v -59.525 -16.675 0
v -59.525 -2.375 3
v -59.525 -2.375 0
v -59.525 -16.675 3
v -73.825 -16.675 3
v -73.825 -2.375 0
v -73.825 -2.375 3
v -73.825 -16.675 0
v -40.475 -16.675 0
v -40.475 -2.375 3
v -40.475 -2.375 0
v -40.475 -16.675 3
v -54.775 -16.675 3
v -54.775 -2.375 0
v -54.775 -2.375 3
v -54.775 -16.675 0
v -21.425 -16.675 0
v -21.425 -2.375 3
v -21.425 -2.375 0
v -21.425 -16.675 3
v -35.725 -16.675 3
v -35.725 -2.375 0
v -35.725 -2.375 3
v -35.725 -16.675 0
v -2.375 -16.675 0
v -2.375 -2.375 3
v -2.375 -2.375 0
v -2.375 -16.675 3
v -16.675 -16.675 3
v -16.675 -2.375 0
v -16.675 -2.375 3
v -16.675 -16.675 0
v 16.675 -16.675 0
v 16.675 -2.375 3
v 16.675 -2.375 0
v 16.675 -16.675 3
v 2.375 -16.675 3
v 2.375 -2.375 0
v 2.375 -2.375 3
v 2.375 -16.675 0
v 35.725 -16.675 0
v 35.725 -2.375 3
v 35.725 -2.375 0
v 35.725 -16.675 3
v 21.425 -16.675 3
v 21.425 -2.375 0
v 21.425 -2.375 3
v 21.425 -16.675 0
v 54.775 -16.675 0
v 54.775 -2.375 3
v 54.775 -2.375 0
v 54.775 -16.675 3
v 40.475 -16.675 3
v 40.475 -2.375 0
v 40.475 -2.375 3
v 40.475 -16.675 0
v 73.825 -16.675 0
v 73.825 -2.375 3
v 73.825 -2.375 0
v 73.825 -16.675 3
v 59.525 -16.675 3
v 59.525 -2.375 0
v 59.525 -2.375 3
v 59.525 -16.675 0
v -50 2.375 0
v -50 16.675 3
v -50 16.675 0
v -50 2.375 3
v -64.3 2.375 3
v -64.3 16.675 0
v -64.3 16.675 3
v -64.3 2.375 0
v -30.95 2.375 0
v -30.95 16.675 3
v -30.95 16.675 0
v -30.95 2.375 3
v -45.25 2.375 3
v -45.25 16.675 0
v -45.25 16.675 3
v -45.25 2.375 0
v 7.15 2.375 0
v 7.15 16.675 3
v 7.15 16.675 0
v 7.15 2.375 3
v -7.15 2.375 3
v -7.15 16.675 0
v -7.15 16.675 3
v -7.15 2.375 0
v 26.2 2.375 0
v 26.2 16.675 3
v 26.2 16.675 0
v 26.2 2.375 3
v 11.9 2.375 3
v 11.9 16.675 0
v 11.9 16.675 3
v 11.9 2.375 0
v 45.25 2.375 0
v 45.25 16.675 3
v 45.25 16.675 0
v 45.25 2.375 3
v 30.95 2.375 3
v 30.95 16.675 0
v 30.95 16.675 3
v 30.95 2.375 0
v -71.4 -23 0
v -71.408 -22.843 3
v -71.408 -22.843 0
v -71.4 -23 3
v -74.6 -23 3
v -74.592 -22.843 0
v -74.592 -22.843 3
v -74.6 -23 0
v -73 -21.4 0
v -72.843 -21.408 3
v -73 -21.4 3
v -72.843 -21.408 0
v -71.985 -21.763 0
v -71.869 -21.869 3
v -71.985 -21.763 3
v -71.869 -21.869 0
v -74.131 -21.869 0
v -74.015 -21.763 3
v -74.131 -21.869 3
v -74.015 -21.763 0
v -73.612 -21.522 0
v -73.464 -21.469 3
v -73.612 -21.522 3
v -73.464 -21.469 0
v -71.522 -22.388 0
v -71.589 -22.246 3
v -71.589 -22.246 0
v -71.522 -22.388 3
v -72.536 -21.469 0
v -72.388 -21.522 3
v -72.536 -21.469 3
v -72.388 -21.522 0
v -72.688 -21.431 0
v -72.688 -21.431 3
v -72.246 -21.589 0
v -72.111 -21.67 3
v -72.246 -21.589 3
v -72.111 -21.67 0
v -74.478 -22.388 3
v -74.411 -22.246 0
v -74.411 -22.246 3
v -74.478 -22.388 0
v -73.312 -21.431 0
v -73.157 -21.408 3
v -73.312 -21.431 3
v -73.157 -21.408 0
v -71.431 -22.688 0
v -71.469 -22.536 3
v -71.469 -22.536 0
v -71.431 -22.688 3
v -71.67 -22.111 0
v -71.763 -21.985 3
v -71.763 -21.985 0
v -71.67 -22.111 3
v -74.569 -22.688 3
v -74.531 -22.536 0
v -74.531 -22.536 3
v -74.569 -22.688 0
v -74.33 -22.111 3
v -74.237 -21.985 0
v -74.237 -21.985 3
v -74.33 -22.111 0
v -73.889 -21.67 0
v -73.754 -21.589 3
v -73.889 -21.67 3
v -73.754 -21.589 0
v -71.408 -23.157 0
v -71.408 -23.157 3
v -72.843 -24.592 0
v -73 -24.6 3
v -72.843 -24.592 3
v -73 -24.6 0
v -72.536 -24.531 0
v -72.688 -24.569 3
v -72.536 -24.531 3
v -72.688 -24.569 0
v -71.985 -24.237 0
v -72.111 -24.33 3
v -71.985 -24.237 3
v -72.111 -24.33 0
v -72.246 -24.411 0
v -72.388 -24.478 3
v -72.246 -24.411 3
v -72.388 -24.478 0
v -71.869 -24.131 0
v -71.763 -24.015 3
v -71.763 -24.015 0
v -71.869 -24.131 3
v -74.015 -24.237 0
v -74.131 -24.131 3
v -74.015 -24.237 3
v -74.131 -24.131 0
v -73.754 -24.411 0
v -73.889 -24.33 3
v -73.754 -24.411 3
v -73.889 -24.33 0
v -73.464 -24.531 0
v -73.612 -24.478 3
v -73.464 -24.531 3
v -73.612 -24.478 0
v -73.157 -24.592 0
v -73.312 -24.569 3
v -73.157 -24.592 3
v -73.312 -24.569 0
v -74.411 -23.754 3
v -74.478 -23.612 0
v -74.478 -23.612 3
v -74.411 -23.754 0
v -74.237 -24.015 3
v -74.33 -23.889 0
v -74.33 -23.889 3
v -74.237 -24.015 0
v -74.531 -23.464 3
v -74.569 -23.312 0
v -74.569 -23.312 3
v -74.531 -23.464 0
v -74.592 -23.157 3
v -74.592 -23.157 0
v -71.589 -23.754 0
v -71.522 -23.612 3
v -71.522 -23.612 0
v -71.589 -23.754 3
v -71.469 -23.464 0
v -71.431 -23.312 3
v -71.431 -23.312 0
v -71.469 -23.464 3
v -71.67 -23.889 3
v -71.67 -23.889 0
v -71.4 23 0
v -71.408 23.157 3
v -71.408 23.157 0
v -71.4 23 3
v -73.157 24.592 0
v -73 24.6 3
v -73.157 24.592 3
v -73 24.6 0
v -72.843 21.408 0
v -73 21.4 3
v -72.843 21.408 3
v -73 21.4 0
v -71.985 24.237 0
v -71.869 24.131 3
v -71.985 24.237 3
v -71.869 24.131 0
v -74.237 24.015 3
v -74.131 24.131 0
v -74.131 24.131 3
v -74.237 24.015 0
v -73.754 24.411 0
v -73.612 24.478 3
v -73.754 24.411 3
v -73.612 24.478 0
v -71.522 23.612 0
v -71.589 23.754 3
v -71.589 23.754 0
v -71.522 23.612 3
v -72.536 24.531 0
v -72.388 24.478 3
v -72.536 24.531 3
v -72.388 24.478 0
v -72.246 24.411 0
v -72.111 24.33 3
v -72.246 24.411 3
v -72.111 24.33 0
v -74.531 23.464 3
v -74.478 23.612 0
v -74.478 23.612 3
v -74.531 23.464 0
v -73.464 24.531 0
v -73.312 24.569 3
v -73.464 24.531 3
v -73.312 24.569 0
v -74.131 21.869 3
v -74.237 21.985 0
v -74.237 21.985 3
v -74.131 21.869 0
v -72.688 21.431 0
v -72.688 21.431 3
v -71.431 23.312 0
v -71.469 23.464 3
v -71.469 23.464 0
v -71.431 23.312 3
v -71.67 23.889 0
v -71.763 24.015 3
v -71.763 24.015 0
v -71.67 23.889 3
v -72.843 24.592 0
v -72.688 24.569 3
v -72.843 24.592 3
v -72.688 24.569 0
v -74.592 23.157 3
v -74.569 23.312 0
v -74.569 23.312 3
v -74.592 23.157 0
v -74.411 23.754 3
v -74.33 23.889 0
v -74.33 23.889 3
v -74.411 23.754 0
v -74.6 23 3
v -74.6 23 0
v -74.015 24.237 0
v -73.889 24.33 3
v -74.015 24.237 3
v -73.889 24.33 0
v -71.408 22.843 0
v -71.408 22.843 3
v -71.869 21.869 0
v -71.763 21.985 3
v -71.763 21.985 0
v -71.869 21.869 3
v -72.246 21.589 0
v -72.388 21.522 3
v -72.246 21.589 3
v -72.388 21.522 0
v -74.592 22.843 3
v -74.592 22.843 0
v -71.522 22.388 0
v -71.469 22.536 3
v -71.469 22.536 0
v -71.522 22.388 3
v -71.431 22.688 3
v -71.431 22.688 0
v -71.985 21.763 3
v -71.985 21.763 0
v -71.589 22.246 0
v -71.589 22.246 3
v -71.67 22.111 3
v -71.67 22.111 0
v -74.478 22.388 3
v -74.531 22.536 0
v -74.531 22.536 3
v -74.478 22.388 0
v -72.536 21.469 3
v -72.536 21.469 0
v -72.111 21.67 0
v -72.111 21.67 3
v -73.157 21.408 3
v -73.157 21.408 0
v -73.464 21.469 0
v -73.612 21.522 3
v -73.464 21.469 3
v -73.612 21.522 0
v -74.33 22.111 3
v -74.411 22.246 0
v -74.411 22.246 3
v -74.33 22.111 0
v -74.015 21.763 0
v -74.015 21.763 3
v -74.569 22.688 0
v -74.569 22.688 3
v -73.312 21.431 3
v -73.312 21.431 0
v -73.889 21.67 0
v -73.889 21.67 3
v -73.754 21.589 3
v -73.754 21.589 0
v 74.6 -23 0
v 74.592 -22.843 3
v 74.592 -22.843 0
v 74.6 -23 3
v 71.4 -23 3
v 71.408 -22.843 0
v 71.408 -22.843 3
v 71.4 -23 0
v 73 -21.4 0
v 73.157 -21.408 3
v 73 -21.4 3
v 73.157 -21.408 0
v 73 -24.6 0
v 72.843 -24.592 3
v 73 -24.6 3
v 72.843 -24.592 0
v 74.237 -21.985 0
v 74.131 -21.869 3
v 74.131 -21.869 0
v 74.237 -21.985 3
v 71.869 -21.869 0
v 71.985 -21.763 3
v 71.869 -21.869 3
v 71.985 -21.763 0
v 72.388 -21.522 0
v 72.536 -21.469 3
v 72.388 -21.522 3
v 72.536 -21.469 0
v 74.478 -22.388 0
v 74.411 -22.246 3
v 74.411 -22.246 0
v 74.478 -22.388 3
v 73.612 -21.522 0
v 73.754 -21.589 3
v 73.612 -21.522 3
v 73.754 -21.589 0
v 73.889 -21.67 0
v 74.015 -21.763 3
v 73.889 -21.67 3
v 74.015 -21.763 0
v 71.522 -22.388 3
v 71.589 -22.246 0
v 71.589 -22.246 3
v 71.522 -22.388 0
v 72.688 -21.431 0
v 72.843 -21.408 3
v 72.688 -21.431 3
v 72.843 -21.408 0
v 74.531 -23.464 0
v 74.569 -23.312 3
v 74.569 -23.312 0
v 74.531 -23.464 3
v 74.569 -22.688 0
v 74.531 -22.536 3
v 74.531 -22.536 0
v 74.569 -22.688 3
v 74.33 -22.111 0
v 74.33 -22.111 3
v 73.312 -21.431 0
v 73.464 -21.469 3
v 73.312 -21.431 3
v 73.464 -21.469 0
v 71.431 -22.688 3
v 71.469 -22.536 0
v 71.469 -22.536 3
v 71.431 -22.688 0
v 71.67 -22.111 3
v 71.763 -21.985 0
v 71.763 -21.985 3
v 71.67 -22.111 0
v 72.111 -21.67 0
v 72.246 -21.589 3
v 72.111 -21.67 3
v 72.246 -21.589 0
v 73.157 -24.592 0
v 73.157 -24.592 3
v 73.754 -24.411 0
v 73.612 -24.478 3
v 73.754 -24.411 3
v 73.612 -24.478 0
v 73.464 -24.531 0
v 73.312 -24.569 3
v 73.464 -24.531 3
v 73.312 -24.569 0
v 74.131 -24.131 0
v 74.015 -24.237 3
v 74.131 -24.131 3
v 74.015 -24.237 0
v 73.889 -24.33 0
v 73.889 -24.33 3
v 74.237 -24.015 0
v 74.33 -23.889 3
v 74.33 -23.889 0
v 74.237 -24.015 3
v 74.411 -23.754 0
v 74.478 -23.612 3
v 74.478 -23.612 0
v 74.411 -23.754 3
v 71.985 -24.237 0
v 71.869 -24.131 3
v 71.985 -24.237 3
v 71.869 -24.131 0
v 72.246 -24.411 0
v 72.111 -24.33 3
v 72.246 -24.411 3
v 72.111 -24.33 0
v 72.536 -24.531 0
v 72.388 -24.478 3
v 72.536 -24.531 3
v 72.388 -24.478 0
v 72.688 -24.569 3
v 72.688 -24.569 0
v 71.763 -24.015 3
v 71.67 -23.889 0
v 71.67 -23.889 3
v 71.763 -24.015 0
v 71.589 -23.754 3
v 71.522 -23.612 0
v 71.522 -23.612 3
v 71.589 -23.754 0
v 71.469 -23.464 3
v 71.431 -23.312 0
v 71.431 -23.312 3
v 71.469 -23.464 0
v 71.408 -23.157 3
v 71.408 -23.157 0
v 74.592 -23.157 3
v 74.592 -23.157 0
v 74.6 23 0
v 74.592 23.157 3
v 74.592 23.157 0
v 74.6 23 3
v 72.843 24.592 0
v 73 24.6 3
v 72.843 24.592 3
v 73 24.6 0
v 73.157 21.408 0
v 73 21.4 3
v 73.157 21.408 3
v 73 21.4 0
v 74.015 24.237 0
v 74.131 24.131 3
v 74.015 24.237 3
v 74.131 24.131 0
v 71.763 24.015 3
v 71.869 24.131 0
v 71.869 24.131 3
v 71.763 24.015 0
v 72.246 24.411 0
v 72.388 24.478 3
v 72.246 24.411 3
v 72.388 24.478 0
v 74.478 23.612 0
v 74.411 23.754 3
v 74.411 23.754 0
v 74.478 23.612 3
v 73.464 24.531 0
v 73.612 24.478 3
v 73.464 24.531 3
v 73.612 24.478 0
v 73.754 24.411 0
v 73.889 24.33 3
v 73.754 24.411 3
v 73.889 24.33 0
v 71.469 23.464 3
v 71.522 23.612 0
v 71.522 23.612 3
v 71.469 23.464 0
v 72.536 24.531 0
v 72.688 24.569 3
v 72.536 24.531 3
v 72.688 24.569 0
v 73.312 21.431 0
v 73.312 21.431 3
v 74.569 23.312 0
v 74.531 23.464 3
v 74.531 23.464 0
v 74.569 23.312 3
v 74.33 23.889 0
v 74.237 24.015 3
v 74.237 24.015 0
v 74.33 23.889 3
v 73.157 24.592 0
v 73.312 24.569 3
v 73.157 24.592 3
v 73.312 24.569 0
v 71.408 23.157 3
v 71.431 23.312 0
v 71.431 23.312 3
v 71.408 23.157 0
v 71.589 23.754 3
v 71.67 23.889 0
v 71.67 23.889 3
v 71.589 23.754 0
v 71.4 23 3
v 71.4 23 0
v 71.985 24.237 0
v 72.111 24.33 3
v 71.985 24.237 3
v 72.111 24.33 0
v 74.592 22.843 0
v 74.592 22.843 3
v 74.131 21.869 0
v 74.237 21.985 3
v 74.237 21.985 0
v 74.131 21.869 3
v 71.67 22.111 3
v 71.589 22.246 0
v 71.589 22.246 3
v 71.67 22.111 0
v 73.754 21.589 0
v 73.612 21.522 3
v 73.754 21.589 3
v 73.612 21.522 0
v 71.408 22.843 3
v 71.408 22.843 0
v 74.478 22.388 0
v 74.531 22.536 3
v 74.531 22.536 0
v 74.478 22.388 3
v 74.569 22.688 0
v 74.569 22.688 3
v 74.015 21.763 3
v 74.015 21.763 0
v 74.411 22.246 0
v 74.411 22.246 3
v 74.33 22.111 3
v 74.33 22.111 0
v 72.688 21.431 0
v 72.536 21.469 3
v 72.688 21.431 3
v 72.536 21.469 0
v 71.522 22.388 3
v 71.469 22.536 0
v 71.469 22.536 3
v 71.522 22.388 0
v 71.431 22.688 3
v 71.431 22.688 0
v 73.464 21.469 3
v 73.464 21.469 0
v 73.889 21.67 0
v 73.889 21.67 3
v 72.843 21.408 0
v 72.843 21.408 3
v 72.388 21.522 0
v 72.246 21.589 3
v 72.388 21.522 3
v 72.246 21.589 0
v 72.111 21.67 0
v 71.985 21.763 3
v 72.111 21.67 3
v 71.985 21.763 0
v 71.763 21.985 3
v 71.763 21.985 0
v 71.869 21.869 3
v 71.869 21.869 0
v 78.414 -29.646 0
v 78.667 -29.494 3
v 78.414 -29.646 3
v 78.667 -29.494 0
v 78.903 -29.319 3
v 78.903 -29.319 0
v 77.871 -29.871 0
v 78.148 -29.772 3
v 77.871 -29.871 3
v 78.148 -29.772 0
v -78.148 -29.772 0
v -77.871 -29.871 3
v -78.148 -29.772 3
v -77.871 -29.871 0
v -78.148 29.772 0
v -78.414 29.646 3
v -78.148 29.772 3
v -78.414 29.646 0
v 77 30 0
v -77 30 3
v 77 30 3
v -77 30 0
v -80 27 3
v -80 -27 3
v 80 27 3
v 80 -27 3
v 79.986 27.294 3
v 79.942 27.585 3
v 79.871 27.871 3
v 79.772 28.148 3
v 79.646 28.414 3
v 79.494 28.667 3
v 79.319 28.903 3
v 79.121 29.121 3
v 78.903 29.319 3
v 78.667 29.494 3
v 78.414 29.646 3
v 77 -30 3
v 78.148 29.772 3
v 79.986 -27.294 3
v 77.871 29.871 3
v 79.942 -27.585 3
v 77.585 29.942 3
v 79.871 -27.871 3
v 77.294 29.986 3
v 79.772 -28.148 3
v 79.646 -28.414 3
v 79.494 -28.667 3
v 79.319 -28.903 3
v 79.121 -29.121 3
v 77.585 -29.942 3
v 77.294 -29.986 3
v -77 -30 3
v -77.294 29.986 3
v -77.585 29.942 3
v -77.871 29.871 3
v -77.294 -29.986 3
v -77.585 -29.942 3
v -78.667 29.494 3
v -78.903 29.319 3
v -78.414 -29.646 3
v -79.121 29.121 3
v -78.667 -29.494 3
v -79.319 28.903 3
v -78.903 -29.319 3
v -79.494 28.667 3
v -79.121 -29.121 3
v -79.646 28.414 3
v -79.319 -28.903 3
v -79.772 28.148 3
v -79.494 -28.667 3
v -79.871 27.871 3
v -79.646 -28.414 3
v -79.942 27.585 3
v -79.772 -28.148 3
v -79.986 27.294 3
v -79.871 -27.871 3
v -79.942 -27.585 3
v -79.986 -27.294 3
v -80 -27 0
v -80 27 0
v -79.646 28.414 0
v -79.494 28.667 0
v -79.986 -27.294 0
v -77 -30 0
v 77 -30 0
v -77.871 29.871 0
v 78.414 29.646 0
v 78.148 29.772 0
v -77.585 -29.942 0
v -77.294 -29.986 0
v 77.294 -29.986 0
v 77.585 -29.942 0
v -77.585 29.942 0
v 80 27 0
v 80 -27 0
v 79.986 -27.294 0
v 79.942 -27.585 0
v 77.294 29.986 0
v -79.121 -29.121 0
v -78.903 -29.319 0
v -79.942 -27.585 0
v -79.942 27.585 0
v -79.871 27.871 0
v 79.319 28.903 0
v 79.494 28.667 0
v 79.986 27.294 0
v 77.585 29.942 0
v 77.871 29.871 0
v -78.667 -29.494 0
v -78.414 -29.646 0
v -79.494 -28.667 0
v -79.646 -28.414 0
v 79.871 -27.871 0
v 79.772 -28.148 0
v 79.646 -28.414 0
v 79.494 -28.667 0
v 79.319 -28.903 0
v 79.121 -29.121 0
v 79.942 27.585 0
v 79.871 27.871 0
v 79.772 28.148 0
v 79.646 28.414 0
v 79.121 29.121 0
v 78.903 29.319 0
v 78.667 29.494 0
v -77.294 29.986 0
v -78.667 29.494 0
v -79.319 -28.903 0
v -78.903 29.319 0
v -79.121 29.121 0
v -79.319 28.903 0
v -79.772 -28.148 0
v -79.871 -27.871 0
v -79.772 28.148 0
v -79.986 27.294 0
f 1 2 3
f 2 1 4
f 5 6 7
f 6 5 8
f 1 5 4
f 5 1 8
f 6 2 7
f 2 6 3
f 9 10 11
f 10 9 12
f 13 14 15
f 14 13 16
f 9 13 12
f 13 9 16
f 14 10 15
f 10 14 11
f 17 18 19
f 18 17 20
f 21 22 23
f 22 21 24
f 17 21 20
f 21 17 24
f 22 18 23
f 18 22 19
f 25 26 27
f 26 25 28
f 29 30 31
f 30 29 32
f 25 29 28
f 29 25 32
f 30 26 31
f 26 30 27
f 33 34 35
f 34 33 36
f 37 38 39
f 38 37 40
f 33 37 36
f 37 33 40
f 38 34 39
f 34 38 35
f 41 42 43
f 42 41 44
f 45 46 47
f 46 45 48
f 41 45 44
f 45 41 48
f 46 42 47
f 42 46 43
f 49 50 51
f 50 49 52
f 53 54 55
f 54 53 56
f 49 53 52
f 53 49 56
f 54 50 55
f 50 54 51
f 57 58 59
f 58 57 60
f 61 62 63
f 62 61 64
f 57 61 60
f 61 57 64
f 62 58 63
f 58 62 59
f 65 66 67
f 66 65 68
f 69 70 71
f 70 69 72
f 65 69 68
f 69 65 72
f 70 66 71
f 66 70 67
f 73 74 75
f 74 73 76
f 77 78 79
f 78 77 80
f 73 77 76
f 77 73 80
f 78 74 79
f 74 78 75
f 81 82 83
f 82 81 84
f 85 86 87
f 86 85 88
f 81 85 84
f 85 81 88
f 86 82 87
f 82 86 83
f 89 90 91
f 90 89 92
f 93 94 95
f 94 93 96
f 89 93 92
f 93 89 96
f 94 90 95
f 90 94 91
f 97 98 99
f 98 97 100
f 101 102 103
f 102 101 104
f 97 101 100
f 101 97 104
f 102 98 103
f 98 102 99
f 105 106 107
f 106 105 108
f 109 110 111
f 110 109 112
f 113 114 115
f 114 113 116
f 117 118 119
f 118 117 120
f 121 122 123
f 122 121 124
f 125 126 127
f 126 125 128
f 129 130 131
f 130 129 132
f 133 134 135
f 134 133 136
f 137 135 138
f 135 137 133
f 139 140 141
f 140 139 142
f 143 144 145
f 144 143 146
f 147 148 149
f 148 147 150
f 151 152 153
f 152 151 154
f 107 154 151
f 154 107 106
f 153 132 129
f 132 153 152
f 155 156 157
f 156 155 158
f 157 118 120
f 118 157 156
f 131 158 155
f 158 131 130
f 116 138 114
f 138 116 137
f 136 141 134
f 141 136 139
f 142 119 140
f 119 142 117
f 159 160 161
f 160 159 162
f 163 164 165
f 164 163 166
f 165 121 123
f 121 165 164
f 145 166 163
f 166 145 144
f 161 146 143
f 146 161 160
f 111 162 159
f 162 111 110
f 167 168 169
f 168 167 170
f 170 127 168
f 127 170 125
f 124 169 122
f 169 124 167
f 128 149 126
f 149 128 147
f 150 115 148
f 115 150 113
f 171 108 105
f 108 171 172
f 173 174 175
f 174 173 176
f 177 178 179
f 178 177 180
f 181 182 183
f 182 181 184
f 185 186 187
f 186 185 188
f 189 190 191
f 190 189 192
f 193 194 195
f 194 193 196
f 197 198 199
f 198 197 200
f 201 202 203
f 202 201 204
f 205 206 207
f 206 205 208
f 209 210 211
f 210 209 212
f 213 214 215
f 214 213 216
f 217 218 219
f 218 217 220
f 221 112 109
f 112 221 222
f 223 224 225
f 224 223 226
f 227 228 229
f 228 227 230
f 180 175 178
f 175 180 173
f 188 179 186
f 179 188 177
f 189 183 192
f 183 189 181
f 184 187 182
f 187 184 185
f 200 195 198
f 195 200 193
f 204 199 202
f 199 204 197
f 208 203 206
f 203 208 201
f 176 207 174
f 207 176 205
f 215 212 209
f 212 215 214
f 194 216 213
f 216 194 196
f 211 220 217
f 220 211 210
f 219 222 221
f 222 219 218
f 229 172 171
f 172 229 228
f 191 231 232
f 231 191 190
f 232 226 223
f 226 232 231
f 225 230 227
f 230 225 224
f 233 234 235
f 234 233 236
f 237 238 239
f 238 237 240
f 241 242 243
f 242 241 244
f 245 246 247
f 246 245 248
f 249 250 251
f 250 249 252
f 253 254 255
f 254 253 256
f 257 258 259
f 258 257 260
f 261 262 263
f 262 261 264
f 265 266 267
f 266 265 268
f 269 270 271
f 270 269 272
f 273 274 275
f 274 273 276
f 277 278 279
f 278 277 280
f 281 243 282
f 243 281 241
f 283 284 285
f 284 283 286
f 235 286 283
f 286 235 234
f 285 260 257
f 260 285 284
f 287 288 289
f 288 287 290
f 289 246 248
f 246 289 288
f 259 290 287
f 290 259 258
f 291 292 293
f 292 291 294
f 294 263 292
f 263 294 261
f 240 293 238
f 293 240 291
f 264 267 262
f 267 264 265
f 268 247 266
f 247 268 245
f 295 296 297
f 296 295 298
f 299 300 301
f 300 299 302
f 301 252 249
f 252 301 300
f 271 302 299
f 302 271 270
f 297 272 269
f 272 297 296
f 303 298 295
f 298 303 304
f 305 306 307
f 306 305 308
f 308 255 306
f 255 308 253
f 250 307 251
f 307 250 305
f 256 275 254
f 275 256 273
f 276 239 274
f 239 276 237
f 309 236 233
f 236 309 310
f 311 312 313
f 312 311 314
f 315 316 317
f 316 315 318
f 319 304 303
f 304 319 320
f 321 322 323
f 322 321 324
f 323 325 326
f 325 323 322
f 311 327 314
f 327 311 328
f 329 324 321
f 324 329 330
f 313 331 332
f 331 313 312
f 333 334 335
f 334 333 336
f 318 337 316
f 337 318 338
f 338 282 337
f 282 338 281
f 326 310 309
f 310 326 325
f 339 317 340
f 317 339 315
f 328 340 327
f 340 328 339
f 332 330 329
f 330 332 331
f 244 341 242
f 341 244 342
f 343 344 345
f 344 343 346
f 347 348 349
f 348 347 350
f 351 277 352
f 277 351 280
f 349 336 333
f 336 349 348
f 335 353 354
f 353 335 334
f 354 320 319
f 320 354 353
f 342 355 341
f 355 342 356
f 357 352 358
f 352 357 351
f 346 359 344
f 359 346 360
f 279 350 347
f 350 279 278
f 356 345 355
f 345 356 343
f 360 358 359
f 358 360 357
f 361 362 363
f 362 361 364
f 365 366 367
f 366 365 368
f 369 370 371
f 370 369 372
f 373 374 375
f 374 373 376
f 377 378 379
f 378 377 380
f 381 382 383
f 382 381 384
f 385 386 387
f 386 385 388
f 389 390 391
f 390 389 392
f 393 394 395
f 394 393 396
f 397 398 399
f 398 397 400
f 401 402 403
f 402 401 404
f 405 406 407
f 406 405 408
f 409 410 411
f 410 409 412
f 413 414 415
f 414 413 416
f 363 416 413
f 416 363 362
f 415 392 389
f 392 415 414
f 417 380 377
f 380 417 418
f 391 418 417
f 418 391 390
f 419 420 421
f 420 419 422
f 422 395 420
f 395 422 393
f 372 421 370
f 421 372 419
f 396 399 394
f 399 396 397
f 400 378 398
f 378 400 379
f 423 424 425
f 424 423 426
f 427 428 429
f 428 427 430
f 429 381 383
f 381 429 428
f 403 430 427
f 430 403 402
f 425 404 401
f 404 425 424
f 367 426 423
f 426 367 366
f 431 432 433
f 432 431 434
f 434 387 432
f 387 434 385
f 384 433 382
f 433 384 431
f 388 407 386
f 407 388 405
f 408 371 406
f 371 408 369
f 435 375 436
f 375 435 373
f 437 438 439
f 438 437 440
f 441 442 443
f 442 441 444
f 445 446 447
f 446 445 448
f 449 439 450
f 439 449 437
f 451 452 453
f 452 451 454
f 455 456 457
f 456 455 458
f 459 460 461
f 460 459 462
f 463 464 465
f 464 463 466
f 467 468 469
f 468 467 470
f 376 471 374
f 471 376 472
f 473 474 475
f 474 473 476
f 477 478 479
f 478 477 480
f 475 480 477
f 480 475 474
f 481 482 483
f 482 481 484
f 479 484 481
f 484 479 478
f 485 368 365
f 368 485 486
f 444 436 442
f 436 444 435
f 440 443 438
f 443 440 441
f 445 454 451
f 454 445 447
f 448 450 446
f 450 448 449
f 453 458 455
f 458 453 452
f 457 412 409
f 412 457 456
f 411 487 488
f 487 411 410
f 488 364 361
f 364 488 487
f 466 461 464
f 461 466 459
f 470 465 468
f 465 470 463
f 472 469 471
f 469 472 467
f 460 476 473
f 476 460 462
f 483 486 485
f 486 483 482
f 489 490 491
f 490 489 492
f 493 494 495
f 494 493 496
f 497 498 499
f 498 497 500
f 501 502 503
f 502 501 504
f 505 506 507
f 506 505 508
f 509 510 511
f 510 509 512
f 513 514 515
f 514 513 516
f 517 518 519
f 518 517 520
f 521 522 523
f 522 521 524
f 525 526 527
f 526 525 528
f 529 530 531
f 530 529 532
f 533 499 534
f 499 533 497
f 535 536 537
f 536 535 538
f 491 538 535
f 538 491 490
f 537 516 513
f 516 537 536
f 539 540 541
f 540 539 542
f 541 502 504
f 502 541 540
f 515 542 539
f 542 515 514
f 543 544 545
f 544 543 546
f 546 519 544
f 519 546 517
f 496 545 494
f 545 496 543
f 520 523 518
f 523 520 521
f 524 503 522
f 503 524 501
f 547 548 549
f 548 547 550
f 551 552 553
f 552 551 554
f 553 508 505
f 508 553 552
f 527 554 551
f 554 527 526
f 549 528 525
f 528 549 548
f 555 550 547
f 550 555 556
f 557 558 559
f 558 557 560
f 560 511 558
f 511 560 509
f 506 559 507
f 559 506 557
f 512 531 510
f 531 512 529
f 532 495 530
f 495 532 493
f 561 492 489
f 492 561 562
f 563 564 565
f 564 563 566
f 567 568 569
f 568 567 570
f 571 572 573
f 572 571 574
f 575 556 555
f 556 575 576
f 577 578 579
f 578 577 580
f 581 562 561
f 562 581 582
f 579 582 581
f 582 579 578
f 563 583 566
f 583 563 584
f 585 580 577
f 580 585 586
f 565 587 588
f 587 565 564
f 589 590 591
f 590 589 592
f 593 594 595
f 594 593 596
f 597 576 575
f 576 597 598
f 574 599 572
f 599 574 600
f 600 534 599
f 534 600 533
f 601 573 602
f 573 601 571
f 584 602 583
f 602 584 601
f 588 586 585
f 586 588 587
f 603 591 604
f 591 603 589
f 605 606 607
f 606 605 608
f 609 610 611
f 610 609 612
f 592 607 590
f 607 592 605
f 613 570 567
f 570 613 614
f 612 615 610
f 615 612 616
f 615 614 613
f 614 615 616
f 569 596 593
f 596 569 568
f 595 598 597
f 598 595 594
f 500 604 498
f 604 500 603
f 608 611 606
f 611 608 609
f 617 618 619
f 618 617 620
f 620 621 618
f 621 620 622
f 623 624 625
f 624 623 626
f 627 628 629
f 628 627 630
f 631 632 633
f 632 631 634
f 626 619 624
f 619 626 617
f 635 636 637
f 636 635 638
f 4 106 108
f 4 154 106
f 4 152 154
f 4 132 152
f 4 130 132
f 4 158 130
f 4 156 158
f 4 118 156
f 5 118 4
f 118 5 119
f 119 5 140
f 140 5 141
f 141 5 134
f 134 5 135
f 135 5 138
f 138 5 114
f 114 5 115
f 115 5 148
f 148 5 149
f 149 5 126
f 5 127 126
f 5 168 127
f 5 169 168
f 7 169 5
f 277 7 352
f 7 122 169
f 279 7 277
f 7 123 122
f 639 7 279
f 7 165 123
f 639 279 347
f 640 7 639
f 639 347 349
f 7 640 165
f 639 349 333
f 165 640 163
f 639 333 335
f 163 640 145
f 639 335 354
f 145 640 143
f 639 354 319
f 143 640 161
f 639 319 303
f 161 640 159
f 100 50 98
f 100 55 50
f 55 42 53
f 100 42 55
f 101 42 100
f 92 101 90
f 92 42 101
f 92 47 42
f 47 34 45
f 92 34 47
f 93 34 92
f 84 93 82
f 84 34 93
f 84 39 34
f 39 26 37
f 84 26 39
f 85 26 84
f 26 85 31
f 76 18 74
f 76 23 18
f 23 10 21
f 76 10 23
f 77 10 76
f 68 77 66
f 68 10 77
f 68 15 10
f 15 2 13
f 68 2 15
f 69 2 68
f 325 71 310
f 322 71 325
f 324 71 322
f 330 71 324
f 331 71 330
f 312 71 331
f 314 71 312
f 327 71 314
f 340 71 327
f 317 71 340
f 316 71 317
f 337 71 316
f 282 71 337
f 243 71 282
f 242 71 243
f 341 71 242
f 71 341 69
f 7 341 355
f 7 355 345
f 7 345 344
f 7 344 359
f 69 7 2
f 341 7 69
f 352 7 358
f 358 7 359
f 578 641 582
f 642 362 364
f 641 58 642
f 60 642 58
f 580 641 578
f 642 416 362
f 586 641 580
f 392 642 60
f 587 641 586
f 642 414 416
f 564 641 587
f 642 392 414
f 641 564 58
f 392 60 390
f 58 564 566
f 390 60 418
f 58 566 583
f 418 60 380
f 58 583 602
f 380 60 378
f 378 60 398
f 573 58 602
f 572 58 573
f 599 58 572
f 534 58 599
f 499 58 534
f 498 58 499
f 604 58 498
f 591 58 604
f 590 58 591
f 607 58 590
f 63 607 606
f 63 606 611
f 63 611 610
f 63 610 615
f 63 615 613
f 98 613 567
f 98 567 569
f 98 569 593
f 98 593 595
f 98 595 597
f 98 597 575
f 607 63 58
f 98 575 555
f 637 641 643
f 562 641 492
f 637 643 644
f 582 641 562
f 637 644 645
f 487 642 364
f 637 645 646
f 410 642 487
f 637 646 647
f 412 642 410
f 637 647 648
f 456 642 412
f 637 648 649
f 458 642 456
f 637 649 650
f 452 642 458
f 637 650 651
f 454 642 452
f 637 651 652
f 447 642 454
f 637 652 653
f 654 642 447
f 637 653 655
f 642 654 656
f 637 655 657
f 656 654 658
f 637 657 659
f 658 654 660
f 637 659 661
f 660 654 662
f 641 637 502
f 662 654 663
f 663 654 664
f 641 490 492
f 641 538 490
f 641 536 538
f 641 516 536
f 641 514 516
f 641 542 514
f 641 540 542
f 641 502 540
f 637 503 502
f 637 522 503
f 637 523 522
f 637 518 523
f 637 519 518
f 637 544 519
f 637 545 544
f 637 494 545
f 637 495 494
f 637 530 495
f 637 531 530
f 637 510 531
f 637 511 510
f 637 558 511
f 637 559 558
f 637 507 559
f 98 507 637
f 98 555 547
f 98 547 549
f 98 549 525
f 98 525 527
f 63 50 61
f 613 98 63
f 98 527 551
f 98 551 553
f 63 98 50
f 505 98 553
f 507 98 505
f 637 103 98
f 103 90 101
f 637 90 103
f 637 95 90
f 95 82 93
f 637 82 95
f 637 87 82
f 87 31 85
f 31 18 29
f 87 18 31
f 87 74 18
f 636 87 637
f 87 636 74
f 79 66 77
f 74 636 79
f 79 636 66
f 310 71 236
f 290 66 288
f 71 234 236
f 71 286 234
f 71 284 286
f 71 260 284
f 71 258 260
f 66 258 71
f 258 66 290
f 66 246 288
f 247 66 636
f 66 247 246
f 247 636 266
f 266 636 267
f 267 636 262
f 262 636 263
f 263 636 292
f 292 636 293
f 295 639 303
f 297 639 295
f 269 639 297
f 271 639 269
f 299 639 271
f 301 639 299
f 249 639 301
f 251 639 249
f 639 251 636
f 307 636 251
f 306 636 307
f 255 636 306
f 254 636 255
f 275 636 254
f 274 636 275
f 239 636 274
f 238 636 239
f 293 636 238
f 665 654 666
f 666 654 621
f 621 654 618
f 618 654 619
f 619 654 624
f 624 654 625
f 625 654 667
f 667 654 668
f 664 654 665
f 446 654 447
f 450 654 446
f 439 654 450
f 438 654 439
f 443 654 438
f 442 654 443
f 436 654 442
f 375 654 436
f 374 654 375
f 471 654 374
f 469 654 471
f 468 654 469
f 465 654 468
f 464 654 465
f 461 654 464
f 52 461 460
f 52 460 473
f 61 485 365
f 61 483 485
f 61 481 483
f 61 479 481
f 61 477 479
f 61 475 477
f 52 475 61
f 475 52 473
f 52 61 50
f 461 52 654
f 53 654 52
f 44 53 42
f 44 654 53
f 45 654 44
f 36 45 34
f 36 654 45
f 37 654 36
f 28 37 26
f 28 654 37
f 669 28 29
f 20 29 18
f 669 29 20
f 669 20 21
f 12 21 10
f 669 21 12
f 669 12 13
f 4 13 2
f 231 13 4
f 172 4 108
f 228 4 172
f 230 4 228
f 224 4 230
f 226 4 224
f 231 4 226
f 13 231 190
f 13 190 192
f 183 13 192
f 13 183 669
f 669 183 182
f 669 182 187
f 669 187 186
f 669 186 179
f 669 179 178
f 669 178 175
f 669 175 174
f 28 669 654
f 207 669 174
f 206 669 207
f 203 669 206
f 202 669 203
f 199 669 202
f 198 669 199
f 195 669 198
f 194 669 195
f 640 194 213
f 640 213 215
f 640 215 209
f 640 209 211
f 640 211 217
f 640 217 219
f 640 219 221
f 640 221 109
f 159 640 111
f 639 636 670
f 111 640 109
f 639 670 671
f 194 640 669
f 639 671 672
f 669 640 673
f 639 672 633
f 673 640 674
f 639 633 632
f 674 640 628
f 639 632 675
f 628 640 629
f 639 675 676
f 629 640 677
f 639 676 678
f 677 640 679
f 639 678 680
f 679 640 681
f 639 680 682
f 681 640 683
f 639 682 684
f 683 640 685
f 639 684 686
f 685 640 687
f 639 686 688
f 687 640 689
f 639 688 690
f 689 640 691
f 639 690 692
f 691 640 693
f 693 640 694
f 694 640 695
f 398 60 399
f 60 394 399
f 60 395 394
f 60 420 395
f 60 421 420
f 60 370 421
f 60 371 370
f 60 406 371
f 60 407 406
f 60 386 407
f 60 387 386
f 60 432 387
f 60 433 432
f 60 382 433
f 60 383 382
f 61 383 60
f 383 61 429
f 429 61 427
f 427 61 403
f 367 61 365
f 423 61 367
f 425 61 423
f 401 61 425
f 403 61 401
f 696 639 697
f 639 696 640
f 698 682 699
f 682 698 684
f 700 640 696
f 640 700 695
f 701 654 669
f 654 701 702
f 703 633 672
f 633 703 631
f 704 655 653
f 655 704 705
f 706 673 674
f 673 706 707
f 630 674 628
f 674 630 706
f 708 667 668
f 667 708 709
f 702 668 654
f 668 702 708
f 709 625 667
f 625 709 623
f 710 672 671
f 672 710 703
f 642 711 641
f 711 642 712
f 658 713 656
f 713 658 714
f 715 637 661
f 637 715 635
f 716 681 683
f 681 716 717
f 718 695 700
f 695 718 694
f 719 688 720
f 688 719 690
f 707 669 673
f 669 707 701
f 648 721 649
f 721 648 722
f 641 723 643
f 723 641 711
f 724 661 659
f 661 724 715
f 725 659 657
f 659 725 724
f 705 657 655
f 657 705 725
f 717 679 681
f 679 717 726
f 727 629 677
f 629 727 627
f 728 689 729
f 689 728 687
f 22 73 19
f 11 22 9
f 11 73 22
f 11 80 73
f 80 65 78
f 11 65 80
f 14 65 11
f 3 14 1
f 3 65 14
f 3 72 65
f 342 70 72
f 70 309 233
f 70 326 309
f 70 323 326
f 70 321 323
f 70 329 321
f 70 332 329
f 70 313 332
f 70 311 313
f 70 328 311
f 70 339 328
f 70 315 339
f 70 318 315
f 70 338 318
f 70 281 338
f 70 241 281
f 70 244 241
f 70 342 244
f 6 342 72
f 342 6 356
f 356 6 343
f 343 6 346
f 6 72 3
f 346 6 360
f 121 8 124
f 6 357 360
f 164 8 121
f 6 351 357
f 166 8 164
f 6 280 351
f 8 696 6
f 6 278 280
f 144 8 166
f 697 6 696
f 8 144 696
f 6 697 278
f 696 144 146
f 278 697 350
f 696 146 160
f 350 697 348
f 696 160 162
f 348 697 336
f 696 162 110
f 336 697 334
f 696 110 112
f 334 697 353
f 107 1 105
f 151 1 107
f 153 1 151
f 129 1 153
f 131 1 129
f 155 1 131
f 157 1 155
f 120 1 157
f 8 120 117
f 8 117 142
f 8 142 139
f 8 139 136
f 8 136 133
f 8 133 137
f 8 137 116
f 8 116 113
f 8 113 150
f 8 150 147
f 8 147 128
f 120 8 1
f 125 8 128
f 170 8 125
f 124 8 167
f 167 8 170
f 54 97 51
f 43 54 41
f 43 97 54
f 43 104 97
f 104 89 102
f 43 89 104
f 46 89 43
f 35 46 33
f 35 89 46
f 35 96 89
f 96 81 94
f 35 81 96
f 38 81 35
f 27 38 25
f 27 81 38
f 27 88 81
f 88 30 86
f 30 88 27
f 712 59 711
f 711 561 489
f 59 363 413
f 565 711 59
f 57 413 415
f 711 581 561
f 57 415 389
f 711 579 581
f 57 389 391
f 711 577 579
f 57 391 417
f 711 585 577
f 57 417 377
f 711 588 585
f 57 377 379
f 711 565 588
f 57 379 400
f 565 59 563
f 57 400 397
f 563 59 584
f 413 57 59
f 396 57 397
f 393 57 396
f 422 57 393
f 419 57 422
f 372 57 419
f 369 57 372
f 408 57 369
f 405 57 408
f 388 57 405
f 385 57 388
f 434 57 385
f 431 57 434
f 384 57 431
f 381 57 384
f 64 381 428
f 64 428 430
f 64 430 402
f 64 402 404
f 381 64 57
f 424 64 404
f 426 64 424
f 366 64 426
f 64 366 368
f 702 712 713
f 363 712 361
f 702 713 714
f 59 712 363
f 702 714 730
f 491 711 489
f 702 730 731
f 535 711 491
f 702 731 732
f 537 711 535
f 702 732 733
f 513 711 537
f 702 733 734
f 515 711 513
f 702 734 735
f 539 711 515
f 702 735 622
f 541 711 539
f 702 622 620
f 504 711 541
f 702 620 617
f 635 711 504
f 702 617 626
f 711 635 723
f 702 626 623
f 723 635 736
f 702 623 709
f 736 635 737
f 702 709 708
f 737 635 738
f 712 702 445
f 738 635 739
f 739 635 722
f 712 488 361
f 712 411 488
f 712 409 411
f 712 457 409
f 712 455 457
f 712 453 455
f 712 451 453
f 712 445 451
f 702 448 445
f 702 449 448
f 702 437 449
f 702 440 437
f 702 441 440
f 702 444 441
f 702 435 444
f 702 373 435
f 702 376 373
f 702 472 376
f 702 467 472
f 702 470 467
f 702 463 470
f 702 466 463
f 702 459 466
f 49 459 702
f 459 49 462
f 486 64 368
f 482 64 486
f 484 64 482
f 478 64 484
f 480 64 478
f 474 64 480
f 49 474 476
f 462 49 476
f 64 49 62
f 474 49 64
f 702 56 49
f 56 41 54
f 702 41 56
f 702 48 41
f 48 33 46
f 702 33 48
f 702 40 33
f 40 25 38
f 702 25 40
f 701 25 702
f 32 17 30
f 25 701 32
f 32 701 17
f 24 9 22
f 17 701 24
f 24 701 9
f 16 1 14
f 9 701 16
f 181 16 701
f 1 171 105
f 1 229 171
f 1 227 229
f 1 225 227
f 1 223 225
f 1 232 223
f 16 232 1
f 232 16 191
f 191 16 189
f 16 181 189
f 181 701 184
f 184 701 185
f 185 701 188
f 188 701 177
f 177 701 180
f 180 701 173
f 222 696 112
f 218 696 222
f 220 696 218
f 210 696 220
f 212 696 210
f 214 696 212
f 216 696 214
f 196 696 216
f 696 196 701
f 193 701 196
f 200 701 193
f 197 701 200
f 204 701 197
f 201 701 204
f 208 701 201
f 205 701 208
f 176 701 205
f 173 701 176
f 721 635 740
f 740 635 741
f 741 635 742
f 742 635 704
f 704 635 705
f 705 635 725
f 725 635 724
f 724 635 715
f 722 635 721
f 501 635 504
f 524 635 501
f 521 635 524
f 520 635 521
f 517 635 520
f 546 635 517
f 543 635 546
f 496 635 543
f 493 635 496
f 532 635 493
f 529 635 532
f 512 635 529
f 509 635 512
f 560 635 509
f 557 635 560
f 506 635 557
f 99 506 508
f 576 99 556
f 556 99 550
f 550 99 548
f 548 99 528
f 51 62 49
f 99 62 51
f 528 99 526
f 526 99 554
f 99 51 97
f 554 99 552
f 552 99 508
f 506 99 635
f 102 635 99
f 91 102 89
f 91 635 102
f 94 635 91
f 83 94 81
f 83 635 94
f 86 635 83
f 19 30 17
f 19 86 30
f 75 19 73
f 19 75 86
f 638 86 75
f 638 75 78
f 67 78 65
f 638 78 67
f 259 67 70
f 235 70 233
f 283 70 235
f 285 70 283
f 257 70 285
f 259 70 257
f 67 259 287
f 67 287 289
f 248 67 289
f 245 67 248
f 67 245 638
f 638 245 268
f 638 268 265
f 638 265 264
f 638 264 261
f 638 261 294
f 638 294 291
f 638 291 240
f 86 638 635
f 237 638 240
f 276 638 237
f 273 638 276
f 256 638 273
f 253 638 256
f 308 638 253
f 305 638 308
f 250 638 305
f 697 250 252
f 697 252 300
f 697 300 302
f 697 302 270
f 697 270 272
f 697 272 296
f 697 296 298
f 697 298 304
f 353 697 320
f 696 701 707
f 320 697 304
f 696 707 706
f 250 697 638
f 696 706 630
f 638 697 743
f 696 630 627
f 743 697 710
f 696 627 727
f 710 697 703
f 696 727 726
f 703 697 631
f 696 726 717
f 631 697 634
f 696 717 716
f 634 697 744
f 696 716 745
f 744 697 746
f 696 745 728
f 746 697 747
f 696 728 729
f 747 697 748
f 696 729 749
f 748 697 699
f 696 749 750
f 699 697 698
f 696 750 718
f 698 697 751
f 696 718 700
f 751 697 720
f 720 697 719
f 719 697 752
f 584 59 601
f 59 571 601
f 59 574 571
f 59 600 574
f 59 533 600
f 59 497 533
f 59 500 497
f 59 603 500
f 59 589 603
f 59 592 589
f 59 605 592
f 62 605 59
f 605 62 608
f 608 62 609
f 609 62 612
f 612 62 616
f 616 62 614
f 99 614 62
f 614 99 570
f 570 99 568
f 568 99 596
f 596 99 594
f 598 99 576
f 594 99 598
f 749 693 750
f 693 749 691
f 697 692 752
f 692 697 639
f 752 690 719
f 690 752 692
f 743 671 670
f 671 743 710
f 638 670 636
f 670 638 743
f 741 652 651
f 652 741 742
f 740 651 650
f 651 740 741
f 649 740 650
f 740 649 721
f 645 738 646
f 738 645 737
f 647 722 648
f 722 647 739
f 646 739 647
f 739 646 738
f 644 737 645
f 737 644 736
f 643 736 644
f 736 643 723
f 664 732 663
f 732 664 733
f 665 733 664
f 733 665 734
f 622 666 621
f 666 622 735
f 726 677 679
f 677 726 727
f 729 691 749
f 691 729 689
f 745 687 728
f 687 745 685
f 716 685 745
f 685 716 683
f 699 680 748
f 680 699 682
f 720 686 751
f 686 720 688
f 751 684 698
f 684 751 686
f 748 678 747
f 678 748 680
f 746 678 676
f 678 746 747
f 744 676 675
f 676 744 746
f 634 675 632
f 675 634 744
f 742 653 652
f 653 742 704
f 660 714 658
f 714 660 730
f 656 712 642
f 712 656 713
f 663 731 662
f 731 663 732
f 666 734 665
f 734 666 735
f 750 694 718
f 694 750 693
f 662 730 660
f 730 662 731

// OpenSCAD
/*

midi keyboard plate

*/

plate_length = 160;
plate_width = 60;
plate_thickness = 3;
corner_radius = 3;

switch_spacing = 19.05;
switch_cutout = 14;
switch_clearance = 0.15;

mount_inset_x = 7;
mount_inset_y = 7;
mount_hole_dia = 3.2; 

$fn=64;

module rounded_plate_2d(length, width, radius) {
    offset(r=radius)
        square([length-(2*radius), width-(2*radius)], center=true);
}

module plate() {
    difference() {
        linear_extrude(height=plate_thickness)
            rounded_plate_2d(plate_length, plate_width, corner_radius);
        
        // switch holes (white keys)
        for (i = [0:7]) {
            x = ((i-3)*switch_spacing)-switch_spacing/2;
            translate([x, 0-(switch_spacing/2), -0.1])
                linear_extrude(height=plate_thickness+0.2)
                    square([switch_cutout + 2 * switch_clearance, switch_cutout + 2 * switch_clearance], center=true);
        }
        
        // switch holes (black keys)
        for (i = [0:5]) {
            if (i != 2) {
                x = (i-3)*switch_spacing;
                translate([x, switch_spacing/2, -0.1])
                    linear_extrude(height=plate_thickness+0.2)
                        square([switch_cutout + 2 * switch_clearance, switch_cutout + 2 * switch_clearance], center=true);
            }
        }
        
        // mounting holes
        for (x = [-plate_length/2 + mount_inset_x,
                   plate_length/2 - mount_inset_x]) {
            for (y = [-plate_width/2 + mount_inset_y,
                       plate_width/2 - mount_inset_y]) {
                translate([x, y, -0.1])
                    cylinder(d=mount_hole_dia, h=plate_thickness + 0.2);
            }
        }
    }
}

plate();
